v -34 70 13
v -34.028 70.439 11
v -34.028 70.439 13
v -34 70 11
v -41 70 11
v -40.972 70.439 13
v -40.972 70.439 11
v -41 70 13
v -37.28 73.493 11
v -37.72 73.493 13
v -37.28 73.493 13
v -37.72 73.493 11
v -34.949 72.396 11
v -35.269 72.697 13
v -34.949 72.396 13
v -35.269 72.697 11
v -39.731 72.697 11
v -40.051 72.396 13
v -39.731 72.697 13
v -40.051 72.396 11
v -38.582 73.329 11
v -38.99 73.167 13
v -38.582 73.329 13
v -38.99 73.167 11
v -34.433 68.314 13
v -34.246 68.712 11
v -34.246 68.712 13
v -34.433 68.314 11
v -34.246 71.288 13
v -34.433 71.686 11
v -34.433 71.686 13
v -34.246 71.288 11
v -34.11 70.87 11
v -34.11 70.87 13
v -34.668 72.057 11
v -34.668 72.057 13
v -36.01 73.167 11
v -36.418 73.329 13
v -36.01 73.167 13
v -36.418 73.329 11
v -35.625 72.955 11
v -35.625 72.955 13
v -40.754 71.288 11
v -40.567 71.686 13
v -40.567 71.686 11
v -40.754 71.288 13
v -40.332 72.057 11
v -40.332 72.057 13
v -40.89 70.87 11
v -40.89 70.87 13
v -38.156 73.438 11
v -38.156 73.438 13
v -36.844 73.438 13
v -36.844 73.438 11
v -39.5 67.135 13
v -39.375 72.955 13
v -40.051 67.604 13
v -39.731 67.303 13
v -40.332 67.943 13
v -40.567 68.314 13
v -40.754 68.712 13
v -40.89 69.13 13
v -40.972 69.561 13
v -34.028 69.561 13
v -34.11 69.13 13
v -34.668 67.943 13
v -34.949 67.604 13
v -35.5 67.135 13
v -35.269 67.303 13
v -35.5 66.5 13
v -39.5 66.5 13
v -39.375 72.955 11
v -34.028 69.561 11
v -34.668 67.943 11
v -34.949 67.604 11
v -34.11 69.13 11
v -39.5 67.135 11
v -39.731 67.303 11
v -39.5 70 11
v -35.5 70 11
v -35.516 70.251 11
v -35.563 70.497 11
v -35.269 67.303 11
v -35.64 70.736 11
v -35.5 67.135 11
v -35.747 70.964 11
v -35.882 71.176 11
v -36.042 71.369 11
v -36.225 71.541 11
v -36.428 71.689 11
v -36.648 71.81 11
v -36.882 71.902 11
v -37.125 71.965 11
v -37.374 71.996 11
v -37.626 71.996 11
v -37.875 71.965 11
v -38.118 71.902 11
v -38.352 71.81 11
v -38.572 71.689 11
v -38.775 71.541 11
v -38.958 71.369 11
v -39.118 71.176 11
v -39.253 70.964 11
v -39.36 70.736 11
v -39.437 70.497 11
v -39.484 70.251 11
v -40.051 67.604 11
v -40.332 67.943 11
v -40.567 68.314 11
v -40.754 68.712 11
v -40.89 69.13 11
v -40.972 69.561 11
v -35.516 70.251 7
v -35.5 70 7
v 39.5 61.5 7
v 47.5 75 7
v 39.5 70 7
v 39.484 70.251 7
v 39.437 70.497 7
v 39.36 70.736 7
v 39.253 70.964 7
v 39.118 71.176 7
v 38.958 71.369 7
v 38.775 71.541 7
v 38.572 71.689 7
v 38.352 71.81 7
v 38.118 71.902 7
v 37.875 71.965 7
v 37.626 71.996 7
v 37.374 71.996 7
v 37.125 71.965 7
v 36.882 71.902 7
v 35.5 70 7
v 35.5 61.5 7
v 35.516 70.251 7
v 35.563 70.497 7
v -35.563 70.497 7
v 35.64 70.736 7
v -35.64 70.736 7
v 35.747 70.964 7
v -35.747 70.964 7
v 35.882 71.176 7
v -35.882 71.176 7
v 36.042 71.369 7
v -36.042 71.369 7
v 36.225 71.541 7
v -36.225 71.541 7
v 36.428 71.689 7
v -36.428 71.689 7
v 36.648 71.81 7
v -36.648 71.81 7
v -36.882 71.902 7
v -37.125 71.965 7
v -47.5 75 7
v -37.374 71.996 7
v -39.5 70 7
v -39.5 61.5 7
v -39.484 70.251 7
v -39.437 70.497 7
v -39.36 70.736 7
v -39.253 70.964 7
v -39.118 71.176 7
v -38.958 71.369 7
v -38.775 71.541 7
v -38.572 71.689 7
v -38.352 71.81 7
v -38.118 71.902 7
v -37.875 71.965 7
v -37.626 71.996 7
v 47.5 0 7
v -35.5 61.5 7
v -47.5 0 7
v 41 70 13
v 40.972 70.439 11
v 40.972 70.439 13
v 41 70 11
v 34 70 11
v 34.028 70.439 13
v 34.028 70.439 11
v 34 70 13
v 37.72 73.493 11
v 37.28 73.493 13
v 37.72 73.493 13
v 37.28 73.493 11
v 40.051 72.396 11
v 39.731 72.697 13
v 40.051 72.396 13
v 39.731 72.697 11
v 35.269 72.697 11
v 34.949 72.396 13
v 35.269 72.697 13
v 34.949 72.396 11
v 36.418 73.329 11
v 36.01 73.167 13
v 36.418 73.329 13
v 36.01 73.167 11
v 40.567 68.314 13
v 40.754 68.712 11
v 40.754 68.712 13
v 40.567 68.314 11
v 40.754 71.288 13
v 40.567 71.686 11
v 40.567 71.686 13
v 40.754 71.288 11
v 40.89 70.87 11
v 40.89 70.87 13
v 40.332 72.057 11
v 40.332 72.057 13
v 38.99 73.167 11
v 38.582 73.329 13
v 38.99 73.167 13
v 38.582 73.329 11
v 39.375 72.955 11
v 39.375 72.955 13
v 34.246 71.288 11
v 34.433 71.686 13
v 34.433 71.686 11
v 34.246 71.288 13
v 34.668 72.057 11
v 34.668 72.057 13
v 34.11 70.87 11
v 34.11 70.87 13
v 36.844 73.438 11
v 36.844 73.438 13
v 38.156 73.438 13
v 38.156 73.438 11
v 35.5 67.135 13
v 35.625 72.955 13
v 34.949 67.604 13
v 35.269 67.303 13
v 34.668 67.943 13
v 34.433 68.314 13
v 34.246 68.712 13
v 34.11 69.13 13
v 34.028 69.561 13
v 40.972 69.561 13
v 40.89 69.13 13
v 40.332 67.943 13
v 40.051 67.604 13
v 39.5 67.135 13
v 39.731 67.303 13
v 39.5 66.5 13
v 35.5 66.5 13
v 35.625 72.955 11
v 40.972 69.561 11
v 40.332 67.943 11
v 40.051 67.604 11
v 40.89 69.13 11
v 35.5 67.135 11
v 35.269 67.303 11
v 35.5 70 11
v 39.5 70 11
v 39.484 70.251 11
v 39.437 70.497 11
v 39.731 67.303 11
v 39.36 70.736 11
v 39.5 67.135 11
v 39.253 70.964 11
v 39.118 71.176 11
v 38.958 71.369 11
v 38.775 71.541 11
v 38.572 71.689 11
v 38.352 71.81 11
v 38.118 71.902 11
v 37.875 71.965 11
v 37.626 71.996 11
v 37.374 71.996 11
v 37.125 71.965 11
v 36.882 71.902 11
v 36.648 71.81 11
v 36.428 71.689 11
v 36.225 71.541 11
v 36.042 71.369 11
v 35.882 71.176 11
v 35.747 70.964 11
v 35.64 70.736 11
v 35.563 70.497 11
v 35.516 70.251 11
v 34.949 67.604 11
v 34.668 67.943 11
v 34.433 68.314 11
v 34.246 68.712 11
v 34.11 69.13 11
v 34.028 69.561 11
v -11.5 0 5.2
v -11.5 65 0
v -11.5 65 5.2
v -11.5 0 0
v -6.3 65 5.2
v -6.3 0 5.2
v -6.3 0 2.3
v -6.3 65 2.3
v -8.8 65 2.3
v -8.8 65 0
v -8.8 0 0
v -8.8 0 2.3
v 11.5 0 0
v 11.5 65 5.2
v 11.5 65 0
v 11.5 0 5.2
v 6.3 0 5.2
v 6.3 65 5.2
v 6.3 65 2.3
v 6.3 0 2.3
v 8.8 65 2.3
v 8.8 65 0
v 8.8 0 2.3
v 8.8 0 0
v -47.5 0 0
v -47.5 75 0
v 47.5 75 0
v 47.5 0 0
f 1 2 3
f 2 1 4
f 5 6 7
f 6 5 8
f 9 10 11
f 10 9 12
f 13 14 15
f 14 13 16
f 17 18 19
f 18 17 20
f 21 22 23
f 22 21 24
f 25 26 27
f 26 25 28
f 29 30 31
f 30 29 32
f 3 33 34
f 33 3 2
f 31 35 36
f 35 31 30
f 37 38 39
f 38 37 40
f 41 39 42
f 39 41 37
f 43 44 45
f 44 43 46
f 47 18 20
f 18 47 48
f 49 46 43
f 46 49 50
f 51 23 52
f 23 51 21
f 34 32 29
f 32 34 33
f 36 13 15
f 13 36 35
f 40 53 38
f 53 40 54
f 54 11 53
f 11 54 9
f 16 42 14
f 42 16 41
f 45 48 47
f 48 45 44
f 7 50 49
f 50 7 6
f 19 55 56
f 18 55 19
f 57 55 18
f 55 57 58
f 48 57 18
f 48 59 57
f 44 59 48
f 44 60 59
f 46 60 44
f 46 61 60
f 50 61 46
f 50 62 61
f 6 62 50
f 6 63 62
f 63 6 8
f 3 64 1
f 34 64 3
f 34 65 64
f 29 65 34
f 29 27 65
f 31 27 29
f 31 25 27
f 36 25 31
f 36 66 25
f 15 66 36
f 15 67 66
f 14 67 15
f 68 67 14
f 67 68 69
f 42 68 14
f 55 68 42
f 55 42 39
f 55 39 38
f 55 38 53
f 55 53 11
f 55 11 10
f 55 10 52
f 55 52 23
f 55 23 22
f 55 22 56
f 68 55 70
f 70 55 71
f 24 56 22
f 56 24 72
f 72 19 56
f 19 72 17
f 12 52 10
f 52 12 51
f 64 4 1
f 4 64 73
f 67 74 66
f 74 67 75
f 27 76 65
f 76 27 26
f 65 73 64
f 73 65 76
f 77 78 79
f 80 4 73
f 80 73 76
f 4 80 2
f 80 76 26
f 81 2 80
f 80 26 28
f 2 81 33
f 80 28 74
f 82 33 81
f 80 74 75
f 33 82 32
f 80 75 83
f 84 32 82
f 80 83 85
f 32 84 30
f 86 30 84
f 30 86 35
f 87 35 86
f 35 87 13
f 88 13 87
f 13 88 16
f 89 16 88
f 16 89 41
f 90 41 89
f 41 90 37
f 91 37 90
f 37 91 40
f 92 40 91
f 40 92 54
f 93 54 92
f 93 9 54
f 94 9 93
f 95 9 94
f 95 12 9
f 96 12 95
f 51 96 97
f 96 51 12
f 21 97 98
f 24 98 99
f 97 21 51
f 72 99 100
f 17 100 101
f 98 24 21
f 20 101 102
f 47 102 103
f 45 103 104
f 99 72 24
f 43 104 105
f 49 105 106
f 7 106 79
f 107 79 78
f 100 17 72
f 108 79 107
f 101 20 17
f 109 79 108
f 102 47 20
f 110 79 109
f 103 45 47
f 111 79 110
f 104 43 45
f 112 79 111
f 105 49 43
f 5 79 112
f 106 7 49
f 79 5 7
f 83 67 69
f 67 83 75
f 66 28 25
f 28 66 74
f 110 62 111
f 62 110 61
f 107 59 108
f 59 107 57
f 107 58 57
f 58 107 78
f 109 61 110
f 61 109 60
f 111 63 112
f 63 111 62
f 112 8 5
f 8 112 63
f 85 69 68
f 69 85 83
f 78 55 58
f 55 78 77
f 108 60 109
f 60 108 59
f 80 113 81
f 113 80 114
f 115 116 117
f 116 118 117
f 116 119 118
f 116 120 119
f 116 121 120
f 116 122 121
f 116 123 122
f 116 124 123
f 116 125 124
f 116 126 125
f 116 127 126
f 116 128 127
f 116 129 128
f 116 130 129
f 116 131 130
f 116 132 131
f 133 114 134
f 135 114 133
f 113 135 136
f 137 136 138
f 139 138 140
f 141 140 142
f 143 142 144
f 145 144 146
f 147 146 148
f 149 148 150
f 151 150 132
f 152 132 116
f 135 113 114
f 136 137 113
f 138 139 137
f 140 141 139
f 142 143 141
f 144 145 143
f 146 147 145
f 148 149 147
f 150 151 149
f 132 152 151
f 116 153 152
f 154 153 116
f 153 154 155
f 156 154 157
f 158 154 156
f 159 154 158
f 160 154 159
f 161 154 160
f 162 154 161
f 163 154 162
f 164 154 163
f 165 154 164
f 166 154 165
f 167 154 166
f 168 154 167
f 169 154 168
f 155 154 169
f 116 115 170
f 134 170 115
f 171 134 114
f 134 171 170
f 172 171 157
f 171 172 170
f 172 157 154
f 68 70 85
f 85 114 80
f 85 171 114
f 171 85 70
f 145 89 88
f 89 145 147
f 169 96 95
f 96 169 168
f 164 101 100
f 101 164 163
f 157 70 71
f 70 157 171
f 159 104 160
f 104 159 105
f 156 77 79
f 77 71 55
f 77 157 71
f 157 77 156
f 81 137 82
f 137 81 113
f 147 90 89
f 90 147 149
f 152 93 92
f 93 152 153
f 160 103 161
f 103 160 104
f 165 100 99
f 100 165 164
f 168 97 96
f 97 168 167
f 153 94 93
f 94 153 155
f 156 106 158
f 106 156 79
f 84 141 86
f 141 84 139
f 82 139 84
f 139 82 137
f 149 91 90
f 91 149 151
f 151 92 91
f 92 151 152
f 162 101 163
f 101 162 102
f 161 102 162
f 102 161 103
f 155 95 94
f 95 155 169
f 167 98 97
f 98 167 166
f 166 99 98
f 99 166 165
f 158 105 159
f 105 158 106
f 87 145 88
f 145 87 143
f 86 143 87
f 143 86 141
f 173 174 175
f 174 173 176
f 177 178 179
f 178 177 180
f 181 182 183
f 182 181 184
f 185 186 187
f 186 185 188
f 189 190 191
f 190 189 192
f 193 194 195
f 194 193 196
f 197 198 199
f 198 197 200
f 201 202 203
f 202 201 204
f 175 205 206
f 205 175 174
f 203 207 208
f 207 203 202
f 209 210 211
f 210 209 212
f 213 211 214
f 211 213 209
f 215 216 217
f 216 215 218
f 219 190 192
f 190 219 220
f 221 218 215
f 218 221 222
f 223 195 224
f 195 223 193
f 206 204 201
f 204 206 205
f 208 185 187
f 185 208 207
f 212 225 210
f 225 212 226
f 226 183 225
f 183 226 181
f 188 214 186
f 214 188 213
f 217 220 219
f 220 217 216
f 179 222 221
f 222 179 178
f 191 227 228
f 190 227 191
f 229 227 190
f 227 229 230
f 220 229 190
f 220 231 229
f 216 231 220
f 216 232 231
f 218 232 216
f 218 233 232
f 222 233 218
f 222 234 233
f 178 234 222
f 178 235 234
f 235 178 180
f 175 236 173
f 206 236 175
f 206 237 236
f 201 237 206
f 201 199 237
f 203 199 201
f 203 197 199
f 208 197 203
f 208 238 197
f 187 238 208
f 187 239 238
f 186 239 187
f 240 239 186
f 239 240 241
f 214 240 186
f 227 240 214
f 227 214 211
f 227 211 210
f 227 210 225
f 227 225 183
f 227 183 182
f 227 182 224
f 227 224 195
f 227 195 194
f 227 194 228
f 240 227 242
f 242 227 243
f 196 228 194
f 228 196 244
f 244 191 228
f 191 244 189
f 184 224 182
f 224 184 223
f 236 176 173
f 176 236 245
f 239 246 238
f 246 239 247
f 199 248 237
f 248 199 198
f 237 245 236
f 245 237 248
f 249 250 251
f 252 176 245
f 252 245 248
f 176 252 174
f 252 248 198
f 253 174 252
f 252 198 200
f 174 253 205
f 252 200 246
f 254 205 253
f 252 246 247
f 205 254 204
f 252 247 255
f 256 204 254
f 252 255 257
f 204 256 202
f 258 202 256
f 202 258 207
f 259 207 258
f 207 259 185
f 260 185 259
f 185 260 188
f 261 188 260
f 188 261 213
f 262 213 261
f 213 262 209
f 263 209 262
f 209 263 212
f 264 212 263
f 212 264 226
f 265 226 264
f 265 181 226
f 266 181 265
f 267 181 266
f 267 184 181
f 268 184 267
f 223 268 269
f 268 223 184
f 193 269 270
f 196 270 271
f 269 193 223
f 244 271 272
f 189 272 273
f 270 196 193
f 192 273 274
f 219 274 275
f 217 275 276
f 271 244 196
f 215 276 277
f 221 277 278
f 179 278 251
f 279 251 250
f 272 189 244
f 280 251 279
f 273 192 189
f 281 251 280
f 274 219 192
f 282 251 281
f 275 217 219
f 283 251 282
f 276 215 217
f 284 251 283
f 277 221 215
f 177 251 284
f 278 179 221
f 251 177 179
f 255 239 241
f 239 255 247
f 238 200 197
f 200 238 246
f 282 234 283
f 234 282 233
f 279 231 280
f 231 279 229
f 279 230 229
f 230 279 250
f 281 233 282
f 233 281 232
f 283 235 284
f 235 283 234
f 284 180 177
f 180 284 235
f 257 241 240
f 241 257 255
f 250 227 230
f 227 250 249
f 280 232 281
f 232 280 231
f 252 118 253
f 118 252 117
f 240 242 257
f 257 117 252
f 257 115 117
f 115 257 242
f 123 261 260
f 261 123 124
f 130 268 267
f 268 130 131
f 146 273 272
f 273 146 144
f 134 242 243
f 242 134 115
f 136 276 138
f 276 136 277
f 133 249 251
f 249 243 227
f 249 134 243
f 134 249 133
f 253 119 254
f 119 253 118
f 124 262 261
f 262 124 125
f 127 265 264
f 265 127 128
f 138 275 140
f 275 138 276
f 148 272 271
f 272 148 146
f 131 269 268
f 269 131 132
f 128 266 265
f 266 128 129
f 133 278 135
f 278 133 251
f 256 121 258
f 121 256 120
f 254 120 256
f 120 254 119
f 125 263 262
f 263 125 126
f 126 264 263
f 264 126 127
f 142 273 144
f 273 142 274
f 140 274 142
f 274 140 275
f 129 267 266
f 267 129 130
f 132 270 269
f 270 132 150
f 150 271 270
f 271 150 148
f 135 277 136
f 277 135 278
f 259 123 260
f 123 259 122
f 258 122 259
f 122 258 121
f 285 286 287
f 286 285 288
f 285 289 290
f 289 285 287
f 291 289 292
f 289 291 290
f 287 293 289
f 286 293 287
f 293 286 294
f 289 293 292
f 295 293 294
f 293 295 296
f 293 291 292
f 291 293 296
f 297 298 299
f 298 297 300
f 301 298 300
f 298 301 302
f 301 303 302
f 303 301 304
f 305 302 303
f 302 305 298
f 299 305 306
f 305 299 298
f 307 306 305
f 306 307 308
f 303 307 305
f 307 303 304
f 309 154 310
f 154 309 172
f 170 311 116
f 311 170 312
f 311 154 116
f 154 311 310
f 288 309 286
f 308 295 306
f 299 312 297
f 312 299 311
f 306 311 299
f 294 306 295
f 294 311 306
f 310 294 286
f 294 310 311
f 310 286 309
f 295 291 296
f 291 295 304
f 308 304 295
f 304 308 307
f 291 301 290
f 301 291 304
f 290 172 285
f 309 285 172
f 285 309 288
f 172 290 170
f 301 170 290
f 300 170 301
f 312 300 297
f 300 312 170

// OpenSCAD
// file: ../modules/rightAnglePrism.scad
//
// Creates a right angle triangular prism with the parameters provided.
//
//    side view            front view
//
//           |             -----------
//          /|             |         |
//         / |             |         |
//        /  |             |         |
//       /   |  height     |         |
//      /    |             |         |
//     /     |             |         |
//    /      |             |         |
//   /--------             -----------
//   baseLength               width
//

module rightAnglePrism(width, baseLength, height){
   polyhedron(
           points=[[0,0,0], [width,0,0], [width,baseLength,0], [0,baseLength,0], [0,baseLength,height], [width,baseLength,height]],
           faces=[[0,1,2,3],[5,4,3,2],[0,4,5,1],[0,3,4],[5,2,1]]
           );
}


// examples
rightAnglePrism(10, 10, 10);
translate([11, 0, 0])
    rightAnglePrism(10, 20, 10);
translate([22, 0, 0])
    rightAnglePrism(10, 30, 10);
translate([33, 0, 0])
    rightAnglePrism(10, 40, 10);

translate([-11, 0, 0])
    rightAnglePrism(10, 10, 20);
translate([-22, 0, 0])
    rightAnglePrism(10, 10, 30);
translate([-33, 0, 0])
    rightAnglePrism(10, 10, 40);

translate([0, -11, 0])
    rightAnglePrism(10, 10, 10);
translate([0, -22, 0])
    rightAnglePrism(20, 10, 10);
translate([0, -33, 0])
    rightAnglePrism(30, 10, 10);
// file: suction_mount_starter.scad
// This is the basic starter file for the rails on the suction cup mount
// You can add other objects to this to bridge them to the mount

internalWidth = 18;
internalHeight = 25;
internalDepth = 2;

externalWidth = 23;
externalHeight = 36;
externalDepth = 5;

thickness=5;
difference() {
    translate([-externalWidth/2-thickness, 0, 0])
        cube([externalWidth+thickness+thickness, externalHeight+thickness+thickness, externalDepth+thickness]);
    rails(40);	
}

// provides mounting for a single rail
module rail(length) {
	difference() {
		translate([0, -1, -1])
			cube([5.2, length+1, 6.2]);
		translate([2.7, -1, -0.7])
			cube([3, length+2, 3]);
	}
}

// provides mounting for a pair of rails, separated correctly
module rails(length) {
    distanceBetweenRails = 23;
    translate([-distanceBetweenRails/2, 0, 0])
        rail(length);
    translate([distanceBetweenRails/2, 0, 0])
        mirror([1, 0, 0])
			rail(length);
}
// file: ../modules/mountingPoint.scad
use <rightAnglePrism.scad>

// 
//        outerDiameter
//          --------
//          |      |\
//topHeight |      | \
//          |      |  \
//           --  --|   \
//            |  | |    \
//bottomHeight|  | |     \
//            |  | |      \
//    innerDiameter supportLength
//
module mountingPoint(outerDiameter, supportLength, innerDiameter, bottomHeight, topHeight) {
    translate([0, 0, bottomHeight])
        cylinder(h=topHeight, d=outerDiameter);
    hull() {
        cylinder(h=topHeight+bottomHeight, d=innerDiameter);
        translate([-innerDiameter/2, -outerDiameter/2-supportLength, 0]) {
            rightAnglePrism(innerDiameter, supportLength, topHeight+bottomHeight);
        }
    }
}

// example
mountingPoint(50, 40, 30, 20, 10);
// main file
// This connects the official raspberry pi 7" display case to the suction cup mount rails

$fn=50;

use <../modules/mountingPoint.scad>
use <suction_mount_starter.scad>

externalX = 95;
externalY = 75;
externalDepth = 2;

thickness=5;

translate([0, externalY-5, externalDepth+thickness]) {
    distanceBetweenPoints = 75;
    translate([-distanceBetweenPoints/2, 0, 0]) {
        mountingPoint(7, 5, 4, 4, 2);
    }
    translate([distanceBetweenPoints/2, 0, 0]) {
        mountingPoint(7, 5, 4, 4, 2);
    }
}
difference() {
    translate([-externalX/2, 0, 0])
        cube([externalX, externalY, externalDepth+thickness]);
    rails(65);
}
